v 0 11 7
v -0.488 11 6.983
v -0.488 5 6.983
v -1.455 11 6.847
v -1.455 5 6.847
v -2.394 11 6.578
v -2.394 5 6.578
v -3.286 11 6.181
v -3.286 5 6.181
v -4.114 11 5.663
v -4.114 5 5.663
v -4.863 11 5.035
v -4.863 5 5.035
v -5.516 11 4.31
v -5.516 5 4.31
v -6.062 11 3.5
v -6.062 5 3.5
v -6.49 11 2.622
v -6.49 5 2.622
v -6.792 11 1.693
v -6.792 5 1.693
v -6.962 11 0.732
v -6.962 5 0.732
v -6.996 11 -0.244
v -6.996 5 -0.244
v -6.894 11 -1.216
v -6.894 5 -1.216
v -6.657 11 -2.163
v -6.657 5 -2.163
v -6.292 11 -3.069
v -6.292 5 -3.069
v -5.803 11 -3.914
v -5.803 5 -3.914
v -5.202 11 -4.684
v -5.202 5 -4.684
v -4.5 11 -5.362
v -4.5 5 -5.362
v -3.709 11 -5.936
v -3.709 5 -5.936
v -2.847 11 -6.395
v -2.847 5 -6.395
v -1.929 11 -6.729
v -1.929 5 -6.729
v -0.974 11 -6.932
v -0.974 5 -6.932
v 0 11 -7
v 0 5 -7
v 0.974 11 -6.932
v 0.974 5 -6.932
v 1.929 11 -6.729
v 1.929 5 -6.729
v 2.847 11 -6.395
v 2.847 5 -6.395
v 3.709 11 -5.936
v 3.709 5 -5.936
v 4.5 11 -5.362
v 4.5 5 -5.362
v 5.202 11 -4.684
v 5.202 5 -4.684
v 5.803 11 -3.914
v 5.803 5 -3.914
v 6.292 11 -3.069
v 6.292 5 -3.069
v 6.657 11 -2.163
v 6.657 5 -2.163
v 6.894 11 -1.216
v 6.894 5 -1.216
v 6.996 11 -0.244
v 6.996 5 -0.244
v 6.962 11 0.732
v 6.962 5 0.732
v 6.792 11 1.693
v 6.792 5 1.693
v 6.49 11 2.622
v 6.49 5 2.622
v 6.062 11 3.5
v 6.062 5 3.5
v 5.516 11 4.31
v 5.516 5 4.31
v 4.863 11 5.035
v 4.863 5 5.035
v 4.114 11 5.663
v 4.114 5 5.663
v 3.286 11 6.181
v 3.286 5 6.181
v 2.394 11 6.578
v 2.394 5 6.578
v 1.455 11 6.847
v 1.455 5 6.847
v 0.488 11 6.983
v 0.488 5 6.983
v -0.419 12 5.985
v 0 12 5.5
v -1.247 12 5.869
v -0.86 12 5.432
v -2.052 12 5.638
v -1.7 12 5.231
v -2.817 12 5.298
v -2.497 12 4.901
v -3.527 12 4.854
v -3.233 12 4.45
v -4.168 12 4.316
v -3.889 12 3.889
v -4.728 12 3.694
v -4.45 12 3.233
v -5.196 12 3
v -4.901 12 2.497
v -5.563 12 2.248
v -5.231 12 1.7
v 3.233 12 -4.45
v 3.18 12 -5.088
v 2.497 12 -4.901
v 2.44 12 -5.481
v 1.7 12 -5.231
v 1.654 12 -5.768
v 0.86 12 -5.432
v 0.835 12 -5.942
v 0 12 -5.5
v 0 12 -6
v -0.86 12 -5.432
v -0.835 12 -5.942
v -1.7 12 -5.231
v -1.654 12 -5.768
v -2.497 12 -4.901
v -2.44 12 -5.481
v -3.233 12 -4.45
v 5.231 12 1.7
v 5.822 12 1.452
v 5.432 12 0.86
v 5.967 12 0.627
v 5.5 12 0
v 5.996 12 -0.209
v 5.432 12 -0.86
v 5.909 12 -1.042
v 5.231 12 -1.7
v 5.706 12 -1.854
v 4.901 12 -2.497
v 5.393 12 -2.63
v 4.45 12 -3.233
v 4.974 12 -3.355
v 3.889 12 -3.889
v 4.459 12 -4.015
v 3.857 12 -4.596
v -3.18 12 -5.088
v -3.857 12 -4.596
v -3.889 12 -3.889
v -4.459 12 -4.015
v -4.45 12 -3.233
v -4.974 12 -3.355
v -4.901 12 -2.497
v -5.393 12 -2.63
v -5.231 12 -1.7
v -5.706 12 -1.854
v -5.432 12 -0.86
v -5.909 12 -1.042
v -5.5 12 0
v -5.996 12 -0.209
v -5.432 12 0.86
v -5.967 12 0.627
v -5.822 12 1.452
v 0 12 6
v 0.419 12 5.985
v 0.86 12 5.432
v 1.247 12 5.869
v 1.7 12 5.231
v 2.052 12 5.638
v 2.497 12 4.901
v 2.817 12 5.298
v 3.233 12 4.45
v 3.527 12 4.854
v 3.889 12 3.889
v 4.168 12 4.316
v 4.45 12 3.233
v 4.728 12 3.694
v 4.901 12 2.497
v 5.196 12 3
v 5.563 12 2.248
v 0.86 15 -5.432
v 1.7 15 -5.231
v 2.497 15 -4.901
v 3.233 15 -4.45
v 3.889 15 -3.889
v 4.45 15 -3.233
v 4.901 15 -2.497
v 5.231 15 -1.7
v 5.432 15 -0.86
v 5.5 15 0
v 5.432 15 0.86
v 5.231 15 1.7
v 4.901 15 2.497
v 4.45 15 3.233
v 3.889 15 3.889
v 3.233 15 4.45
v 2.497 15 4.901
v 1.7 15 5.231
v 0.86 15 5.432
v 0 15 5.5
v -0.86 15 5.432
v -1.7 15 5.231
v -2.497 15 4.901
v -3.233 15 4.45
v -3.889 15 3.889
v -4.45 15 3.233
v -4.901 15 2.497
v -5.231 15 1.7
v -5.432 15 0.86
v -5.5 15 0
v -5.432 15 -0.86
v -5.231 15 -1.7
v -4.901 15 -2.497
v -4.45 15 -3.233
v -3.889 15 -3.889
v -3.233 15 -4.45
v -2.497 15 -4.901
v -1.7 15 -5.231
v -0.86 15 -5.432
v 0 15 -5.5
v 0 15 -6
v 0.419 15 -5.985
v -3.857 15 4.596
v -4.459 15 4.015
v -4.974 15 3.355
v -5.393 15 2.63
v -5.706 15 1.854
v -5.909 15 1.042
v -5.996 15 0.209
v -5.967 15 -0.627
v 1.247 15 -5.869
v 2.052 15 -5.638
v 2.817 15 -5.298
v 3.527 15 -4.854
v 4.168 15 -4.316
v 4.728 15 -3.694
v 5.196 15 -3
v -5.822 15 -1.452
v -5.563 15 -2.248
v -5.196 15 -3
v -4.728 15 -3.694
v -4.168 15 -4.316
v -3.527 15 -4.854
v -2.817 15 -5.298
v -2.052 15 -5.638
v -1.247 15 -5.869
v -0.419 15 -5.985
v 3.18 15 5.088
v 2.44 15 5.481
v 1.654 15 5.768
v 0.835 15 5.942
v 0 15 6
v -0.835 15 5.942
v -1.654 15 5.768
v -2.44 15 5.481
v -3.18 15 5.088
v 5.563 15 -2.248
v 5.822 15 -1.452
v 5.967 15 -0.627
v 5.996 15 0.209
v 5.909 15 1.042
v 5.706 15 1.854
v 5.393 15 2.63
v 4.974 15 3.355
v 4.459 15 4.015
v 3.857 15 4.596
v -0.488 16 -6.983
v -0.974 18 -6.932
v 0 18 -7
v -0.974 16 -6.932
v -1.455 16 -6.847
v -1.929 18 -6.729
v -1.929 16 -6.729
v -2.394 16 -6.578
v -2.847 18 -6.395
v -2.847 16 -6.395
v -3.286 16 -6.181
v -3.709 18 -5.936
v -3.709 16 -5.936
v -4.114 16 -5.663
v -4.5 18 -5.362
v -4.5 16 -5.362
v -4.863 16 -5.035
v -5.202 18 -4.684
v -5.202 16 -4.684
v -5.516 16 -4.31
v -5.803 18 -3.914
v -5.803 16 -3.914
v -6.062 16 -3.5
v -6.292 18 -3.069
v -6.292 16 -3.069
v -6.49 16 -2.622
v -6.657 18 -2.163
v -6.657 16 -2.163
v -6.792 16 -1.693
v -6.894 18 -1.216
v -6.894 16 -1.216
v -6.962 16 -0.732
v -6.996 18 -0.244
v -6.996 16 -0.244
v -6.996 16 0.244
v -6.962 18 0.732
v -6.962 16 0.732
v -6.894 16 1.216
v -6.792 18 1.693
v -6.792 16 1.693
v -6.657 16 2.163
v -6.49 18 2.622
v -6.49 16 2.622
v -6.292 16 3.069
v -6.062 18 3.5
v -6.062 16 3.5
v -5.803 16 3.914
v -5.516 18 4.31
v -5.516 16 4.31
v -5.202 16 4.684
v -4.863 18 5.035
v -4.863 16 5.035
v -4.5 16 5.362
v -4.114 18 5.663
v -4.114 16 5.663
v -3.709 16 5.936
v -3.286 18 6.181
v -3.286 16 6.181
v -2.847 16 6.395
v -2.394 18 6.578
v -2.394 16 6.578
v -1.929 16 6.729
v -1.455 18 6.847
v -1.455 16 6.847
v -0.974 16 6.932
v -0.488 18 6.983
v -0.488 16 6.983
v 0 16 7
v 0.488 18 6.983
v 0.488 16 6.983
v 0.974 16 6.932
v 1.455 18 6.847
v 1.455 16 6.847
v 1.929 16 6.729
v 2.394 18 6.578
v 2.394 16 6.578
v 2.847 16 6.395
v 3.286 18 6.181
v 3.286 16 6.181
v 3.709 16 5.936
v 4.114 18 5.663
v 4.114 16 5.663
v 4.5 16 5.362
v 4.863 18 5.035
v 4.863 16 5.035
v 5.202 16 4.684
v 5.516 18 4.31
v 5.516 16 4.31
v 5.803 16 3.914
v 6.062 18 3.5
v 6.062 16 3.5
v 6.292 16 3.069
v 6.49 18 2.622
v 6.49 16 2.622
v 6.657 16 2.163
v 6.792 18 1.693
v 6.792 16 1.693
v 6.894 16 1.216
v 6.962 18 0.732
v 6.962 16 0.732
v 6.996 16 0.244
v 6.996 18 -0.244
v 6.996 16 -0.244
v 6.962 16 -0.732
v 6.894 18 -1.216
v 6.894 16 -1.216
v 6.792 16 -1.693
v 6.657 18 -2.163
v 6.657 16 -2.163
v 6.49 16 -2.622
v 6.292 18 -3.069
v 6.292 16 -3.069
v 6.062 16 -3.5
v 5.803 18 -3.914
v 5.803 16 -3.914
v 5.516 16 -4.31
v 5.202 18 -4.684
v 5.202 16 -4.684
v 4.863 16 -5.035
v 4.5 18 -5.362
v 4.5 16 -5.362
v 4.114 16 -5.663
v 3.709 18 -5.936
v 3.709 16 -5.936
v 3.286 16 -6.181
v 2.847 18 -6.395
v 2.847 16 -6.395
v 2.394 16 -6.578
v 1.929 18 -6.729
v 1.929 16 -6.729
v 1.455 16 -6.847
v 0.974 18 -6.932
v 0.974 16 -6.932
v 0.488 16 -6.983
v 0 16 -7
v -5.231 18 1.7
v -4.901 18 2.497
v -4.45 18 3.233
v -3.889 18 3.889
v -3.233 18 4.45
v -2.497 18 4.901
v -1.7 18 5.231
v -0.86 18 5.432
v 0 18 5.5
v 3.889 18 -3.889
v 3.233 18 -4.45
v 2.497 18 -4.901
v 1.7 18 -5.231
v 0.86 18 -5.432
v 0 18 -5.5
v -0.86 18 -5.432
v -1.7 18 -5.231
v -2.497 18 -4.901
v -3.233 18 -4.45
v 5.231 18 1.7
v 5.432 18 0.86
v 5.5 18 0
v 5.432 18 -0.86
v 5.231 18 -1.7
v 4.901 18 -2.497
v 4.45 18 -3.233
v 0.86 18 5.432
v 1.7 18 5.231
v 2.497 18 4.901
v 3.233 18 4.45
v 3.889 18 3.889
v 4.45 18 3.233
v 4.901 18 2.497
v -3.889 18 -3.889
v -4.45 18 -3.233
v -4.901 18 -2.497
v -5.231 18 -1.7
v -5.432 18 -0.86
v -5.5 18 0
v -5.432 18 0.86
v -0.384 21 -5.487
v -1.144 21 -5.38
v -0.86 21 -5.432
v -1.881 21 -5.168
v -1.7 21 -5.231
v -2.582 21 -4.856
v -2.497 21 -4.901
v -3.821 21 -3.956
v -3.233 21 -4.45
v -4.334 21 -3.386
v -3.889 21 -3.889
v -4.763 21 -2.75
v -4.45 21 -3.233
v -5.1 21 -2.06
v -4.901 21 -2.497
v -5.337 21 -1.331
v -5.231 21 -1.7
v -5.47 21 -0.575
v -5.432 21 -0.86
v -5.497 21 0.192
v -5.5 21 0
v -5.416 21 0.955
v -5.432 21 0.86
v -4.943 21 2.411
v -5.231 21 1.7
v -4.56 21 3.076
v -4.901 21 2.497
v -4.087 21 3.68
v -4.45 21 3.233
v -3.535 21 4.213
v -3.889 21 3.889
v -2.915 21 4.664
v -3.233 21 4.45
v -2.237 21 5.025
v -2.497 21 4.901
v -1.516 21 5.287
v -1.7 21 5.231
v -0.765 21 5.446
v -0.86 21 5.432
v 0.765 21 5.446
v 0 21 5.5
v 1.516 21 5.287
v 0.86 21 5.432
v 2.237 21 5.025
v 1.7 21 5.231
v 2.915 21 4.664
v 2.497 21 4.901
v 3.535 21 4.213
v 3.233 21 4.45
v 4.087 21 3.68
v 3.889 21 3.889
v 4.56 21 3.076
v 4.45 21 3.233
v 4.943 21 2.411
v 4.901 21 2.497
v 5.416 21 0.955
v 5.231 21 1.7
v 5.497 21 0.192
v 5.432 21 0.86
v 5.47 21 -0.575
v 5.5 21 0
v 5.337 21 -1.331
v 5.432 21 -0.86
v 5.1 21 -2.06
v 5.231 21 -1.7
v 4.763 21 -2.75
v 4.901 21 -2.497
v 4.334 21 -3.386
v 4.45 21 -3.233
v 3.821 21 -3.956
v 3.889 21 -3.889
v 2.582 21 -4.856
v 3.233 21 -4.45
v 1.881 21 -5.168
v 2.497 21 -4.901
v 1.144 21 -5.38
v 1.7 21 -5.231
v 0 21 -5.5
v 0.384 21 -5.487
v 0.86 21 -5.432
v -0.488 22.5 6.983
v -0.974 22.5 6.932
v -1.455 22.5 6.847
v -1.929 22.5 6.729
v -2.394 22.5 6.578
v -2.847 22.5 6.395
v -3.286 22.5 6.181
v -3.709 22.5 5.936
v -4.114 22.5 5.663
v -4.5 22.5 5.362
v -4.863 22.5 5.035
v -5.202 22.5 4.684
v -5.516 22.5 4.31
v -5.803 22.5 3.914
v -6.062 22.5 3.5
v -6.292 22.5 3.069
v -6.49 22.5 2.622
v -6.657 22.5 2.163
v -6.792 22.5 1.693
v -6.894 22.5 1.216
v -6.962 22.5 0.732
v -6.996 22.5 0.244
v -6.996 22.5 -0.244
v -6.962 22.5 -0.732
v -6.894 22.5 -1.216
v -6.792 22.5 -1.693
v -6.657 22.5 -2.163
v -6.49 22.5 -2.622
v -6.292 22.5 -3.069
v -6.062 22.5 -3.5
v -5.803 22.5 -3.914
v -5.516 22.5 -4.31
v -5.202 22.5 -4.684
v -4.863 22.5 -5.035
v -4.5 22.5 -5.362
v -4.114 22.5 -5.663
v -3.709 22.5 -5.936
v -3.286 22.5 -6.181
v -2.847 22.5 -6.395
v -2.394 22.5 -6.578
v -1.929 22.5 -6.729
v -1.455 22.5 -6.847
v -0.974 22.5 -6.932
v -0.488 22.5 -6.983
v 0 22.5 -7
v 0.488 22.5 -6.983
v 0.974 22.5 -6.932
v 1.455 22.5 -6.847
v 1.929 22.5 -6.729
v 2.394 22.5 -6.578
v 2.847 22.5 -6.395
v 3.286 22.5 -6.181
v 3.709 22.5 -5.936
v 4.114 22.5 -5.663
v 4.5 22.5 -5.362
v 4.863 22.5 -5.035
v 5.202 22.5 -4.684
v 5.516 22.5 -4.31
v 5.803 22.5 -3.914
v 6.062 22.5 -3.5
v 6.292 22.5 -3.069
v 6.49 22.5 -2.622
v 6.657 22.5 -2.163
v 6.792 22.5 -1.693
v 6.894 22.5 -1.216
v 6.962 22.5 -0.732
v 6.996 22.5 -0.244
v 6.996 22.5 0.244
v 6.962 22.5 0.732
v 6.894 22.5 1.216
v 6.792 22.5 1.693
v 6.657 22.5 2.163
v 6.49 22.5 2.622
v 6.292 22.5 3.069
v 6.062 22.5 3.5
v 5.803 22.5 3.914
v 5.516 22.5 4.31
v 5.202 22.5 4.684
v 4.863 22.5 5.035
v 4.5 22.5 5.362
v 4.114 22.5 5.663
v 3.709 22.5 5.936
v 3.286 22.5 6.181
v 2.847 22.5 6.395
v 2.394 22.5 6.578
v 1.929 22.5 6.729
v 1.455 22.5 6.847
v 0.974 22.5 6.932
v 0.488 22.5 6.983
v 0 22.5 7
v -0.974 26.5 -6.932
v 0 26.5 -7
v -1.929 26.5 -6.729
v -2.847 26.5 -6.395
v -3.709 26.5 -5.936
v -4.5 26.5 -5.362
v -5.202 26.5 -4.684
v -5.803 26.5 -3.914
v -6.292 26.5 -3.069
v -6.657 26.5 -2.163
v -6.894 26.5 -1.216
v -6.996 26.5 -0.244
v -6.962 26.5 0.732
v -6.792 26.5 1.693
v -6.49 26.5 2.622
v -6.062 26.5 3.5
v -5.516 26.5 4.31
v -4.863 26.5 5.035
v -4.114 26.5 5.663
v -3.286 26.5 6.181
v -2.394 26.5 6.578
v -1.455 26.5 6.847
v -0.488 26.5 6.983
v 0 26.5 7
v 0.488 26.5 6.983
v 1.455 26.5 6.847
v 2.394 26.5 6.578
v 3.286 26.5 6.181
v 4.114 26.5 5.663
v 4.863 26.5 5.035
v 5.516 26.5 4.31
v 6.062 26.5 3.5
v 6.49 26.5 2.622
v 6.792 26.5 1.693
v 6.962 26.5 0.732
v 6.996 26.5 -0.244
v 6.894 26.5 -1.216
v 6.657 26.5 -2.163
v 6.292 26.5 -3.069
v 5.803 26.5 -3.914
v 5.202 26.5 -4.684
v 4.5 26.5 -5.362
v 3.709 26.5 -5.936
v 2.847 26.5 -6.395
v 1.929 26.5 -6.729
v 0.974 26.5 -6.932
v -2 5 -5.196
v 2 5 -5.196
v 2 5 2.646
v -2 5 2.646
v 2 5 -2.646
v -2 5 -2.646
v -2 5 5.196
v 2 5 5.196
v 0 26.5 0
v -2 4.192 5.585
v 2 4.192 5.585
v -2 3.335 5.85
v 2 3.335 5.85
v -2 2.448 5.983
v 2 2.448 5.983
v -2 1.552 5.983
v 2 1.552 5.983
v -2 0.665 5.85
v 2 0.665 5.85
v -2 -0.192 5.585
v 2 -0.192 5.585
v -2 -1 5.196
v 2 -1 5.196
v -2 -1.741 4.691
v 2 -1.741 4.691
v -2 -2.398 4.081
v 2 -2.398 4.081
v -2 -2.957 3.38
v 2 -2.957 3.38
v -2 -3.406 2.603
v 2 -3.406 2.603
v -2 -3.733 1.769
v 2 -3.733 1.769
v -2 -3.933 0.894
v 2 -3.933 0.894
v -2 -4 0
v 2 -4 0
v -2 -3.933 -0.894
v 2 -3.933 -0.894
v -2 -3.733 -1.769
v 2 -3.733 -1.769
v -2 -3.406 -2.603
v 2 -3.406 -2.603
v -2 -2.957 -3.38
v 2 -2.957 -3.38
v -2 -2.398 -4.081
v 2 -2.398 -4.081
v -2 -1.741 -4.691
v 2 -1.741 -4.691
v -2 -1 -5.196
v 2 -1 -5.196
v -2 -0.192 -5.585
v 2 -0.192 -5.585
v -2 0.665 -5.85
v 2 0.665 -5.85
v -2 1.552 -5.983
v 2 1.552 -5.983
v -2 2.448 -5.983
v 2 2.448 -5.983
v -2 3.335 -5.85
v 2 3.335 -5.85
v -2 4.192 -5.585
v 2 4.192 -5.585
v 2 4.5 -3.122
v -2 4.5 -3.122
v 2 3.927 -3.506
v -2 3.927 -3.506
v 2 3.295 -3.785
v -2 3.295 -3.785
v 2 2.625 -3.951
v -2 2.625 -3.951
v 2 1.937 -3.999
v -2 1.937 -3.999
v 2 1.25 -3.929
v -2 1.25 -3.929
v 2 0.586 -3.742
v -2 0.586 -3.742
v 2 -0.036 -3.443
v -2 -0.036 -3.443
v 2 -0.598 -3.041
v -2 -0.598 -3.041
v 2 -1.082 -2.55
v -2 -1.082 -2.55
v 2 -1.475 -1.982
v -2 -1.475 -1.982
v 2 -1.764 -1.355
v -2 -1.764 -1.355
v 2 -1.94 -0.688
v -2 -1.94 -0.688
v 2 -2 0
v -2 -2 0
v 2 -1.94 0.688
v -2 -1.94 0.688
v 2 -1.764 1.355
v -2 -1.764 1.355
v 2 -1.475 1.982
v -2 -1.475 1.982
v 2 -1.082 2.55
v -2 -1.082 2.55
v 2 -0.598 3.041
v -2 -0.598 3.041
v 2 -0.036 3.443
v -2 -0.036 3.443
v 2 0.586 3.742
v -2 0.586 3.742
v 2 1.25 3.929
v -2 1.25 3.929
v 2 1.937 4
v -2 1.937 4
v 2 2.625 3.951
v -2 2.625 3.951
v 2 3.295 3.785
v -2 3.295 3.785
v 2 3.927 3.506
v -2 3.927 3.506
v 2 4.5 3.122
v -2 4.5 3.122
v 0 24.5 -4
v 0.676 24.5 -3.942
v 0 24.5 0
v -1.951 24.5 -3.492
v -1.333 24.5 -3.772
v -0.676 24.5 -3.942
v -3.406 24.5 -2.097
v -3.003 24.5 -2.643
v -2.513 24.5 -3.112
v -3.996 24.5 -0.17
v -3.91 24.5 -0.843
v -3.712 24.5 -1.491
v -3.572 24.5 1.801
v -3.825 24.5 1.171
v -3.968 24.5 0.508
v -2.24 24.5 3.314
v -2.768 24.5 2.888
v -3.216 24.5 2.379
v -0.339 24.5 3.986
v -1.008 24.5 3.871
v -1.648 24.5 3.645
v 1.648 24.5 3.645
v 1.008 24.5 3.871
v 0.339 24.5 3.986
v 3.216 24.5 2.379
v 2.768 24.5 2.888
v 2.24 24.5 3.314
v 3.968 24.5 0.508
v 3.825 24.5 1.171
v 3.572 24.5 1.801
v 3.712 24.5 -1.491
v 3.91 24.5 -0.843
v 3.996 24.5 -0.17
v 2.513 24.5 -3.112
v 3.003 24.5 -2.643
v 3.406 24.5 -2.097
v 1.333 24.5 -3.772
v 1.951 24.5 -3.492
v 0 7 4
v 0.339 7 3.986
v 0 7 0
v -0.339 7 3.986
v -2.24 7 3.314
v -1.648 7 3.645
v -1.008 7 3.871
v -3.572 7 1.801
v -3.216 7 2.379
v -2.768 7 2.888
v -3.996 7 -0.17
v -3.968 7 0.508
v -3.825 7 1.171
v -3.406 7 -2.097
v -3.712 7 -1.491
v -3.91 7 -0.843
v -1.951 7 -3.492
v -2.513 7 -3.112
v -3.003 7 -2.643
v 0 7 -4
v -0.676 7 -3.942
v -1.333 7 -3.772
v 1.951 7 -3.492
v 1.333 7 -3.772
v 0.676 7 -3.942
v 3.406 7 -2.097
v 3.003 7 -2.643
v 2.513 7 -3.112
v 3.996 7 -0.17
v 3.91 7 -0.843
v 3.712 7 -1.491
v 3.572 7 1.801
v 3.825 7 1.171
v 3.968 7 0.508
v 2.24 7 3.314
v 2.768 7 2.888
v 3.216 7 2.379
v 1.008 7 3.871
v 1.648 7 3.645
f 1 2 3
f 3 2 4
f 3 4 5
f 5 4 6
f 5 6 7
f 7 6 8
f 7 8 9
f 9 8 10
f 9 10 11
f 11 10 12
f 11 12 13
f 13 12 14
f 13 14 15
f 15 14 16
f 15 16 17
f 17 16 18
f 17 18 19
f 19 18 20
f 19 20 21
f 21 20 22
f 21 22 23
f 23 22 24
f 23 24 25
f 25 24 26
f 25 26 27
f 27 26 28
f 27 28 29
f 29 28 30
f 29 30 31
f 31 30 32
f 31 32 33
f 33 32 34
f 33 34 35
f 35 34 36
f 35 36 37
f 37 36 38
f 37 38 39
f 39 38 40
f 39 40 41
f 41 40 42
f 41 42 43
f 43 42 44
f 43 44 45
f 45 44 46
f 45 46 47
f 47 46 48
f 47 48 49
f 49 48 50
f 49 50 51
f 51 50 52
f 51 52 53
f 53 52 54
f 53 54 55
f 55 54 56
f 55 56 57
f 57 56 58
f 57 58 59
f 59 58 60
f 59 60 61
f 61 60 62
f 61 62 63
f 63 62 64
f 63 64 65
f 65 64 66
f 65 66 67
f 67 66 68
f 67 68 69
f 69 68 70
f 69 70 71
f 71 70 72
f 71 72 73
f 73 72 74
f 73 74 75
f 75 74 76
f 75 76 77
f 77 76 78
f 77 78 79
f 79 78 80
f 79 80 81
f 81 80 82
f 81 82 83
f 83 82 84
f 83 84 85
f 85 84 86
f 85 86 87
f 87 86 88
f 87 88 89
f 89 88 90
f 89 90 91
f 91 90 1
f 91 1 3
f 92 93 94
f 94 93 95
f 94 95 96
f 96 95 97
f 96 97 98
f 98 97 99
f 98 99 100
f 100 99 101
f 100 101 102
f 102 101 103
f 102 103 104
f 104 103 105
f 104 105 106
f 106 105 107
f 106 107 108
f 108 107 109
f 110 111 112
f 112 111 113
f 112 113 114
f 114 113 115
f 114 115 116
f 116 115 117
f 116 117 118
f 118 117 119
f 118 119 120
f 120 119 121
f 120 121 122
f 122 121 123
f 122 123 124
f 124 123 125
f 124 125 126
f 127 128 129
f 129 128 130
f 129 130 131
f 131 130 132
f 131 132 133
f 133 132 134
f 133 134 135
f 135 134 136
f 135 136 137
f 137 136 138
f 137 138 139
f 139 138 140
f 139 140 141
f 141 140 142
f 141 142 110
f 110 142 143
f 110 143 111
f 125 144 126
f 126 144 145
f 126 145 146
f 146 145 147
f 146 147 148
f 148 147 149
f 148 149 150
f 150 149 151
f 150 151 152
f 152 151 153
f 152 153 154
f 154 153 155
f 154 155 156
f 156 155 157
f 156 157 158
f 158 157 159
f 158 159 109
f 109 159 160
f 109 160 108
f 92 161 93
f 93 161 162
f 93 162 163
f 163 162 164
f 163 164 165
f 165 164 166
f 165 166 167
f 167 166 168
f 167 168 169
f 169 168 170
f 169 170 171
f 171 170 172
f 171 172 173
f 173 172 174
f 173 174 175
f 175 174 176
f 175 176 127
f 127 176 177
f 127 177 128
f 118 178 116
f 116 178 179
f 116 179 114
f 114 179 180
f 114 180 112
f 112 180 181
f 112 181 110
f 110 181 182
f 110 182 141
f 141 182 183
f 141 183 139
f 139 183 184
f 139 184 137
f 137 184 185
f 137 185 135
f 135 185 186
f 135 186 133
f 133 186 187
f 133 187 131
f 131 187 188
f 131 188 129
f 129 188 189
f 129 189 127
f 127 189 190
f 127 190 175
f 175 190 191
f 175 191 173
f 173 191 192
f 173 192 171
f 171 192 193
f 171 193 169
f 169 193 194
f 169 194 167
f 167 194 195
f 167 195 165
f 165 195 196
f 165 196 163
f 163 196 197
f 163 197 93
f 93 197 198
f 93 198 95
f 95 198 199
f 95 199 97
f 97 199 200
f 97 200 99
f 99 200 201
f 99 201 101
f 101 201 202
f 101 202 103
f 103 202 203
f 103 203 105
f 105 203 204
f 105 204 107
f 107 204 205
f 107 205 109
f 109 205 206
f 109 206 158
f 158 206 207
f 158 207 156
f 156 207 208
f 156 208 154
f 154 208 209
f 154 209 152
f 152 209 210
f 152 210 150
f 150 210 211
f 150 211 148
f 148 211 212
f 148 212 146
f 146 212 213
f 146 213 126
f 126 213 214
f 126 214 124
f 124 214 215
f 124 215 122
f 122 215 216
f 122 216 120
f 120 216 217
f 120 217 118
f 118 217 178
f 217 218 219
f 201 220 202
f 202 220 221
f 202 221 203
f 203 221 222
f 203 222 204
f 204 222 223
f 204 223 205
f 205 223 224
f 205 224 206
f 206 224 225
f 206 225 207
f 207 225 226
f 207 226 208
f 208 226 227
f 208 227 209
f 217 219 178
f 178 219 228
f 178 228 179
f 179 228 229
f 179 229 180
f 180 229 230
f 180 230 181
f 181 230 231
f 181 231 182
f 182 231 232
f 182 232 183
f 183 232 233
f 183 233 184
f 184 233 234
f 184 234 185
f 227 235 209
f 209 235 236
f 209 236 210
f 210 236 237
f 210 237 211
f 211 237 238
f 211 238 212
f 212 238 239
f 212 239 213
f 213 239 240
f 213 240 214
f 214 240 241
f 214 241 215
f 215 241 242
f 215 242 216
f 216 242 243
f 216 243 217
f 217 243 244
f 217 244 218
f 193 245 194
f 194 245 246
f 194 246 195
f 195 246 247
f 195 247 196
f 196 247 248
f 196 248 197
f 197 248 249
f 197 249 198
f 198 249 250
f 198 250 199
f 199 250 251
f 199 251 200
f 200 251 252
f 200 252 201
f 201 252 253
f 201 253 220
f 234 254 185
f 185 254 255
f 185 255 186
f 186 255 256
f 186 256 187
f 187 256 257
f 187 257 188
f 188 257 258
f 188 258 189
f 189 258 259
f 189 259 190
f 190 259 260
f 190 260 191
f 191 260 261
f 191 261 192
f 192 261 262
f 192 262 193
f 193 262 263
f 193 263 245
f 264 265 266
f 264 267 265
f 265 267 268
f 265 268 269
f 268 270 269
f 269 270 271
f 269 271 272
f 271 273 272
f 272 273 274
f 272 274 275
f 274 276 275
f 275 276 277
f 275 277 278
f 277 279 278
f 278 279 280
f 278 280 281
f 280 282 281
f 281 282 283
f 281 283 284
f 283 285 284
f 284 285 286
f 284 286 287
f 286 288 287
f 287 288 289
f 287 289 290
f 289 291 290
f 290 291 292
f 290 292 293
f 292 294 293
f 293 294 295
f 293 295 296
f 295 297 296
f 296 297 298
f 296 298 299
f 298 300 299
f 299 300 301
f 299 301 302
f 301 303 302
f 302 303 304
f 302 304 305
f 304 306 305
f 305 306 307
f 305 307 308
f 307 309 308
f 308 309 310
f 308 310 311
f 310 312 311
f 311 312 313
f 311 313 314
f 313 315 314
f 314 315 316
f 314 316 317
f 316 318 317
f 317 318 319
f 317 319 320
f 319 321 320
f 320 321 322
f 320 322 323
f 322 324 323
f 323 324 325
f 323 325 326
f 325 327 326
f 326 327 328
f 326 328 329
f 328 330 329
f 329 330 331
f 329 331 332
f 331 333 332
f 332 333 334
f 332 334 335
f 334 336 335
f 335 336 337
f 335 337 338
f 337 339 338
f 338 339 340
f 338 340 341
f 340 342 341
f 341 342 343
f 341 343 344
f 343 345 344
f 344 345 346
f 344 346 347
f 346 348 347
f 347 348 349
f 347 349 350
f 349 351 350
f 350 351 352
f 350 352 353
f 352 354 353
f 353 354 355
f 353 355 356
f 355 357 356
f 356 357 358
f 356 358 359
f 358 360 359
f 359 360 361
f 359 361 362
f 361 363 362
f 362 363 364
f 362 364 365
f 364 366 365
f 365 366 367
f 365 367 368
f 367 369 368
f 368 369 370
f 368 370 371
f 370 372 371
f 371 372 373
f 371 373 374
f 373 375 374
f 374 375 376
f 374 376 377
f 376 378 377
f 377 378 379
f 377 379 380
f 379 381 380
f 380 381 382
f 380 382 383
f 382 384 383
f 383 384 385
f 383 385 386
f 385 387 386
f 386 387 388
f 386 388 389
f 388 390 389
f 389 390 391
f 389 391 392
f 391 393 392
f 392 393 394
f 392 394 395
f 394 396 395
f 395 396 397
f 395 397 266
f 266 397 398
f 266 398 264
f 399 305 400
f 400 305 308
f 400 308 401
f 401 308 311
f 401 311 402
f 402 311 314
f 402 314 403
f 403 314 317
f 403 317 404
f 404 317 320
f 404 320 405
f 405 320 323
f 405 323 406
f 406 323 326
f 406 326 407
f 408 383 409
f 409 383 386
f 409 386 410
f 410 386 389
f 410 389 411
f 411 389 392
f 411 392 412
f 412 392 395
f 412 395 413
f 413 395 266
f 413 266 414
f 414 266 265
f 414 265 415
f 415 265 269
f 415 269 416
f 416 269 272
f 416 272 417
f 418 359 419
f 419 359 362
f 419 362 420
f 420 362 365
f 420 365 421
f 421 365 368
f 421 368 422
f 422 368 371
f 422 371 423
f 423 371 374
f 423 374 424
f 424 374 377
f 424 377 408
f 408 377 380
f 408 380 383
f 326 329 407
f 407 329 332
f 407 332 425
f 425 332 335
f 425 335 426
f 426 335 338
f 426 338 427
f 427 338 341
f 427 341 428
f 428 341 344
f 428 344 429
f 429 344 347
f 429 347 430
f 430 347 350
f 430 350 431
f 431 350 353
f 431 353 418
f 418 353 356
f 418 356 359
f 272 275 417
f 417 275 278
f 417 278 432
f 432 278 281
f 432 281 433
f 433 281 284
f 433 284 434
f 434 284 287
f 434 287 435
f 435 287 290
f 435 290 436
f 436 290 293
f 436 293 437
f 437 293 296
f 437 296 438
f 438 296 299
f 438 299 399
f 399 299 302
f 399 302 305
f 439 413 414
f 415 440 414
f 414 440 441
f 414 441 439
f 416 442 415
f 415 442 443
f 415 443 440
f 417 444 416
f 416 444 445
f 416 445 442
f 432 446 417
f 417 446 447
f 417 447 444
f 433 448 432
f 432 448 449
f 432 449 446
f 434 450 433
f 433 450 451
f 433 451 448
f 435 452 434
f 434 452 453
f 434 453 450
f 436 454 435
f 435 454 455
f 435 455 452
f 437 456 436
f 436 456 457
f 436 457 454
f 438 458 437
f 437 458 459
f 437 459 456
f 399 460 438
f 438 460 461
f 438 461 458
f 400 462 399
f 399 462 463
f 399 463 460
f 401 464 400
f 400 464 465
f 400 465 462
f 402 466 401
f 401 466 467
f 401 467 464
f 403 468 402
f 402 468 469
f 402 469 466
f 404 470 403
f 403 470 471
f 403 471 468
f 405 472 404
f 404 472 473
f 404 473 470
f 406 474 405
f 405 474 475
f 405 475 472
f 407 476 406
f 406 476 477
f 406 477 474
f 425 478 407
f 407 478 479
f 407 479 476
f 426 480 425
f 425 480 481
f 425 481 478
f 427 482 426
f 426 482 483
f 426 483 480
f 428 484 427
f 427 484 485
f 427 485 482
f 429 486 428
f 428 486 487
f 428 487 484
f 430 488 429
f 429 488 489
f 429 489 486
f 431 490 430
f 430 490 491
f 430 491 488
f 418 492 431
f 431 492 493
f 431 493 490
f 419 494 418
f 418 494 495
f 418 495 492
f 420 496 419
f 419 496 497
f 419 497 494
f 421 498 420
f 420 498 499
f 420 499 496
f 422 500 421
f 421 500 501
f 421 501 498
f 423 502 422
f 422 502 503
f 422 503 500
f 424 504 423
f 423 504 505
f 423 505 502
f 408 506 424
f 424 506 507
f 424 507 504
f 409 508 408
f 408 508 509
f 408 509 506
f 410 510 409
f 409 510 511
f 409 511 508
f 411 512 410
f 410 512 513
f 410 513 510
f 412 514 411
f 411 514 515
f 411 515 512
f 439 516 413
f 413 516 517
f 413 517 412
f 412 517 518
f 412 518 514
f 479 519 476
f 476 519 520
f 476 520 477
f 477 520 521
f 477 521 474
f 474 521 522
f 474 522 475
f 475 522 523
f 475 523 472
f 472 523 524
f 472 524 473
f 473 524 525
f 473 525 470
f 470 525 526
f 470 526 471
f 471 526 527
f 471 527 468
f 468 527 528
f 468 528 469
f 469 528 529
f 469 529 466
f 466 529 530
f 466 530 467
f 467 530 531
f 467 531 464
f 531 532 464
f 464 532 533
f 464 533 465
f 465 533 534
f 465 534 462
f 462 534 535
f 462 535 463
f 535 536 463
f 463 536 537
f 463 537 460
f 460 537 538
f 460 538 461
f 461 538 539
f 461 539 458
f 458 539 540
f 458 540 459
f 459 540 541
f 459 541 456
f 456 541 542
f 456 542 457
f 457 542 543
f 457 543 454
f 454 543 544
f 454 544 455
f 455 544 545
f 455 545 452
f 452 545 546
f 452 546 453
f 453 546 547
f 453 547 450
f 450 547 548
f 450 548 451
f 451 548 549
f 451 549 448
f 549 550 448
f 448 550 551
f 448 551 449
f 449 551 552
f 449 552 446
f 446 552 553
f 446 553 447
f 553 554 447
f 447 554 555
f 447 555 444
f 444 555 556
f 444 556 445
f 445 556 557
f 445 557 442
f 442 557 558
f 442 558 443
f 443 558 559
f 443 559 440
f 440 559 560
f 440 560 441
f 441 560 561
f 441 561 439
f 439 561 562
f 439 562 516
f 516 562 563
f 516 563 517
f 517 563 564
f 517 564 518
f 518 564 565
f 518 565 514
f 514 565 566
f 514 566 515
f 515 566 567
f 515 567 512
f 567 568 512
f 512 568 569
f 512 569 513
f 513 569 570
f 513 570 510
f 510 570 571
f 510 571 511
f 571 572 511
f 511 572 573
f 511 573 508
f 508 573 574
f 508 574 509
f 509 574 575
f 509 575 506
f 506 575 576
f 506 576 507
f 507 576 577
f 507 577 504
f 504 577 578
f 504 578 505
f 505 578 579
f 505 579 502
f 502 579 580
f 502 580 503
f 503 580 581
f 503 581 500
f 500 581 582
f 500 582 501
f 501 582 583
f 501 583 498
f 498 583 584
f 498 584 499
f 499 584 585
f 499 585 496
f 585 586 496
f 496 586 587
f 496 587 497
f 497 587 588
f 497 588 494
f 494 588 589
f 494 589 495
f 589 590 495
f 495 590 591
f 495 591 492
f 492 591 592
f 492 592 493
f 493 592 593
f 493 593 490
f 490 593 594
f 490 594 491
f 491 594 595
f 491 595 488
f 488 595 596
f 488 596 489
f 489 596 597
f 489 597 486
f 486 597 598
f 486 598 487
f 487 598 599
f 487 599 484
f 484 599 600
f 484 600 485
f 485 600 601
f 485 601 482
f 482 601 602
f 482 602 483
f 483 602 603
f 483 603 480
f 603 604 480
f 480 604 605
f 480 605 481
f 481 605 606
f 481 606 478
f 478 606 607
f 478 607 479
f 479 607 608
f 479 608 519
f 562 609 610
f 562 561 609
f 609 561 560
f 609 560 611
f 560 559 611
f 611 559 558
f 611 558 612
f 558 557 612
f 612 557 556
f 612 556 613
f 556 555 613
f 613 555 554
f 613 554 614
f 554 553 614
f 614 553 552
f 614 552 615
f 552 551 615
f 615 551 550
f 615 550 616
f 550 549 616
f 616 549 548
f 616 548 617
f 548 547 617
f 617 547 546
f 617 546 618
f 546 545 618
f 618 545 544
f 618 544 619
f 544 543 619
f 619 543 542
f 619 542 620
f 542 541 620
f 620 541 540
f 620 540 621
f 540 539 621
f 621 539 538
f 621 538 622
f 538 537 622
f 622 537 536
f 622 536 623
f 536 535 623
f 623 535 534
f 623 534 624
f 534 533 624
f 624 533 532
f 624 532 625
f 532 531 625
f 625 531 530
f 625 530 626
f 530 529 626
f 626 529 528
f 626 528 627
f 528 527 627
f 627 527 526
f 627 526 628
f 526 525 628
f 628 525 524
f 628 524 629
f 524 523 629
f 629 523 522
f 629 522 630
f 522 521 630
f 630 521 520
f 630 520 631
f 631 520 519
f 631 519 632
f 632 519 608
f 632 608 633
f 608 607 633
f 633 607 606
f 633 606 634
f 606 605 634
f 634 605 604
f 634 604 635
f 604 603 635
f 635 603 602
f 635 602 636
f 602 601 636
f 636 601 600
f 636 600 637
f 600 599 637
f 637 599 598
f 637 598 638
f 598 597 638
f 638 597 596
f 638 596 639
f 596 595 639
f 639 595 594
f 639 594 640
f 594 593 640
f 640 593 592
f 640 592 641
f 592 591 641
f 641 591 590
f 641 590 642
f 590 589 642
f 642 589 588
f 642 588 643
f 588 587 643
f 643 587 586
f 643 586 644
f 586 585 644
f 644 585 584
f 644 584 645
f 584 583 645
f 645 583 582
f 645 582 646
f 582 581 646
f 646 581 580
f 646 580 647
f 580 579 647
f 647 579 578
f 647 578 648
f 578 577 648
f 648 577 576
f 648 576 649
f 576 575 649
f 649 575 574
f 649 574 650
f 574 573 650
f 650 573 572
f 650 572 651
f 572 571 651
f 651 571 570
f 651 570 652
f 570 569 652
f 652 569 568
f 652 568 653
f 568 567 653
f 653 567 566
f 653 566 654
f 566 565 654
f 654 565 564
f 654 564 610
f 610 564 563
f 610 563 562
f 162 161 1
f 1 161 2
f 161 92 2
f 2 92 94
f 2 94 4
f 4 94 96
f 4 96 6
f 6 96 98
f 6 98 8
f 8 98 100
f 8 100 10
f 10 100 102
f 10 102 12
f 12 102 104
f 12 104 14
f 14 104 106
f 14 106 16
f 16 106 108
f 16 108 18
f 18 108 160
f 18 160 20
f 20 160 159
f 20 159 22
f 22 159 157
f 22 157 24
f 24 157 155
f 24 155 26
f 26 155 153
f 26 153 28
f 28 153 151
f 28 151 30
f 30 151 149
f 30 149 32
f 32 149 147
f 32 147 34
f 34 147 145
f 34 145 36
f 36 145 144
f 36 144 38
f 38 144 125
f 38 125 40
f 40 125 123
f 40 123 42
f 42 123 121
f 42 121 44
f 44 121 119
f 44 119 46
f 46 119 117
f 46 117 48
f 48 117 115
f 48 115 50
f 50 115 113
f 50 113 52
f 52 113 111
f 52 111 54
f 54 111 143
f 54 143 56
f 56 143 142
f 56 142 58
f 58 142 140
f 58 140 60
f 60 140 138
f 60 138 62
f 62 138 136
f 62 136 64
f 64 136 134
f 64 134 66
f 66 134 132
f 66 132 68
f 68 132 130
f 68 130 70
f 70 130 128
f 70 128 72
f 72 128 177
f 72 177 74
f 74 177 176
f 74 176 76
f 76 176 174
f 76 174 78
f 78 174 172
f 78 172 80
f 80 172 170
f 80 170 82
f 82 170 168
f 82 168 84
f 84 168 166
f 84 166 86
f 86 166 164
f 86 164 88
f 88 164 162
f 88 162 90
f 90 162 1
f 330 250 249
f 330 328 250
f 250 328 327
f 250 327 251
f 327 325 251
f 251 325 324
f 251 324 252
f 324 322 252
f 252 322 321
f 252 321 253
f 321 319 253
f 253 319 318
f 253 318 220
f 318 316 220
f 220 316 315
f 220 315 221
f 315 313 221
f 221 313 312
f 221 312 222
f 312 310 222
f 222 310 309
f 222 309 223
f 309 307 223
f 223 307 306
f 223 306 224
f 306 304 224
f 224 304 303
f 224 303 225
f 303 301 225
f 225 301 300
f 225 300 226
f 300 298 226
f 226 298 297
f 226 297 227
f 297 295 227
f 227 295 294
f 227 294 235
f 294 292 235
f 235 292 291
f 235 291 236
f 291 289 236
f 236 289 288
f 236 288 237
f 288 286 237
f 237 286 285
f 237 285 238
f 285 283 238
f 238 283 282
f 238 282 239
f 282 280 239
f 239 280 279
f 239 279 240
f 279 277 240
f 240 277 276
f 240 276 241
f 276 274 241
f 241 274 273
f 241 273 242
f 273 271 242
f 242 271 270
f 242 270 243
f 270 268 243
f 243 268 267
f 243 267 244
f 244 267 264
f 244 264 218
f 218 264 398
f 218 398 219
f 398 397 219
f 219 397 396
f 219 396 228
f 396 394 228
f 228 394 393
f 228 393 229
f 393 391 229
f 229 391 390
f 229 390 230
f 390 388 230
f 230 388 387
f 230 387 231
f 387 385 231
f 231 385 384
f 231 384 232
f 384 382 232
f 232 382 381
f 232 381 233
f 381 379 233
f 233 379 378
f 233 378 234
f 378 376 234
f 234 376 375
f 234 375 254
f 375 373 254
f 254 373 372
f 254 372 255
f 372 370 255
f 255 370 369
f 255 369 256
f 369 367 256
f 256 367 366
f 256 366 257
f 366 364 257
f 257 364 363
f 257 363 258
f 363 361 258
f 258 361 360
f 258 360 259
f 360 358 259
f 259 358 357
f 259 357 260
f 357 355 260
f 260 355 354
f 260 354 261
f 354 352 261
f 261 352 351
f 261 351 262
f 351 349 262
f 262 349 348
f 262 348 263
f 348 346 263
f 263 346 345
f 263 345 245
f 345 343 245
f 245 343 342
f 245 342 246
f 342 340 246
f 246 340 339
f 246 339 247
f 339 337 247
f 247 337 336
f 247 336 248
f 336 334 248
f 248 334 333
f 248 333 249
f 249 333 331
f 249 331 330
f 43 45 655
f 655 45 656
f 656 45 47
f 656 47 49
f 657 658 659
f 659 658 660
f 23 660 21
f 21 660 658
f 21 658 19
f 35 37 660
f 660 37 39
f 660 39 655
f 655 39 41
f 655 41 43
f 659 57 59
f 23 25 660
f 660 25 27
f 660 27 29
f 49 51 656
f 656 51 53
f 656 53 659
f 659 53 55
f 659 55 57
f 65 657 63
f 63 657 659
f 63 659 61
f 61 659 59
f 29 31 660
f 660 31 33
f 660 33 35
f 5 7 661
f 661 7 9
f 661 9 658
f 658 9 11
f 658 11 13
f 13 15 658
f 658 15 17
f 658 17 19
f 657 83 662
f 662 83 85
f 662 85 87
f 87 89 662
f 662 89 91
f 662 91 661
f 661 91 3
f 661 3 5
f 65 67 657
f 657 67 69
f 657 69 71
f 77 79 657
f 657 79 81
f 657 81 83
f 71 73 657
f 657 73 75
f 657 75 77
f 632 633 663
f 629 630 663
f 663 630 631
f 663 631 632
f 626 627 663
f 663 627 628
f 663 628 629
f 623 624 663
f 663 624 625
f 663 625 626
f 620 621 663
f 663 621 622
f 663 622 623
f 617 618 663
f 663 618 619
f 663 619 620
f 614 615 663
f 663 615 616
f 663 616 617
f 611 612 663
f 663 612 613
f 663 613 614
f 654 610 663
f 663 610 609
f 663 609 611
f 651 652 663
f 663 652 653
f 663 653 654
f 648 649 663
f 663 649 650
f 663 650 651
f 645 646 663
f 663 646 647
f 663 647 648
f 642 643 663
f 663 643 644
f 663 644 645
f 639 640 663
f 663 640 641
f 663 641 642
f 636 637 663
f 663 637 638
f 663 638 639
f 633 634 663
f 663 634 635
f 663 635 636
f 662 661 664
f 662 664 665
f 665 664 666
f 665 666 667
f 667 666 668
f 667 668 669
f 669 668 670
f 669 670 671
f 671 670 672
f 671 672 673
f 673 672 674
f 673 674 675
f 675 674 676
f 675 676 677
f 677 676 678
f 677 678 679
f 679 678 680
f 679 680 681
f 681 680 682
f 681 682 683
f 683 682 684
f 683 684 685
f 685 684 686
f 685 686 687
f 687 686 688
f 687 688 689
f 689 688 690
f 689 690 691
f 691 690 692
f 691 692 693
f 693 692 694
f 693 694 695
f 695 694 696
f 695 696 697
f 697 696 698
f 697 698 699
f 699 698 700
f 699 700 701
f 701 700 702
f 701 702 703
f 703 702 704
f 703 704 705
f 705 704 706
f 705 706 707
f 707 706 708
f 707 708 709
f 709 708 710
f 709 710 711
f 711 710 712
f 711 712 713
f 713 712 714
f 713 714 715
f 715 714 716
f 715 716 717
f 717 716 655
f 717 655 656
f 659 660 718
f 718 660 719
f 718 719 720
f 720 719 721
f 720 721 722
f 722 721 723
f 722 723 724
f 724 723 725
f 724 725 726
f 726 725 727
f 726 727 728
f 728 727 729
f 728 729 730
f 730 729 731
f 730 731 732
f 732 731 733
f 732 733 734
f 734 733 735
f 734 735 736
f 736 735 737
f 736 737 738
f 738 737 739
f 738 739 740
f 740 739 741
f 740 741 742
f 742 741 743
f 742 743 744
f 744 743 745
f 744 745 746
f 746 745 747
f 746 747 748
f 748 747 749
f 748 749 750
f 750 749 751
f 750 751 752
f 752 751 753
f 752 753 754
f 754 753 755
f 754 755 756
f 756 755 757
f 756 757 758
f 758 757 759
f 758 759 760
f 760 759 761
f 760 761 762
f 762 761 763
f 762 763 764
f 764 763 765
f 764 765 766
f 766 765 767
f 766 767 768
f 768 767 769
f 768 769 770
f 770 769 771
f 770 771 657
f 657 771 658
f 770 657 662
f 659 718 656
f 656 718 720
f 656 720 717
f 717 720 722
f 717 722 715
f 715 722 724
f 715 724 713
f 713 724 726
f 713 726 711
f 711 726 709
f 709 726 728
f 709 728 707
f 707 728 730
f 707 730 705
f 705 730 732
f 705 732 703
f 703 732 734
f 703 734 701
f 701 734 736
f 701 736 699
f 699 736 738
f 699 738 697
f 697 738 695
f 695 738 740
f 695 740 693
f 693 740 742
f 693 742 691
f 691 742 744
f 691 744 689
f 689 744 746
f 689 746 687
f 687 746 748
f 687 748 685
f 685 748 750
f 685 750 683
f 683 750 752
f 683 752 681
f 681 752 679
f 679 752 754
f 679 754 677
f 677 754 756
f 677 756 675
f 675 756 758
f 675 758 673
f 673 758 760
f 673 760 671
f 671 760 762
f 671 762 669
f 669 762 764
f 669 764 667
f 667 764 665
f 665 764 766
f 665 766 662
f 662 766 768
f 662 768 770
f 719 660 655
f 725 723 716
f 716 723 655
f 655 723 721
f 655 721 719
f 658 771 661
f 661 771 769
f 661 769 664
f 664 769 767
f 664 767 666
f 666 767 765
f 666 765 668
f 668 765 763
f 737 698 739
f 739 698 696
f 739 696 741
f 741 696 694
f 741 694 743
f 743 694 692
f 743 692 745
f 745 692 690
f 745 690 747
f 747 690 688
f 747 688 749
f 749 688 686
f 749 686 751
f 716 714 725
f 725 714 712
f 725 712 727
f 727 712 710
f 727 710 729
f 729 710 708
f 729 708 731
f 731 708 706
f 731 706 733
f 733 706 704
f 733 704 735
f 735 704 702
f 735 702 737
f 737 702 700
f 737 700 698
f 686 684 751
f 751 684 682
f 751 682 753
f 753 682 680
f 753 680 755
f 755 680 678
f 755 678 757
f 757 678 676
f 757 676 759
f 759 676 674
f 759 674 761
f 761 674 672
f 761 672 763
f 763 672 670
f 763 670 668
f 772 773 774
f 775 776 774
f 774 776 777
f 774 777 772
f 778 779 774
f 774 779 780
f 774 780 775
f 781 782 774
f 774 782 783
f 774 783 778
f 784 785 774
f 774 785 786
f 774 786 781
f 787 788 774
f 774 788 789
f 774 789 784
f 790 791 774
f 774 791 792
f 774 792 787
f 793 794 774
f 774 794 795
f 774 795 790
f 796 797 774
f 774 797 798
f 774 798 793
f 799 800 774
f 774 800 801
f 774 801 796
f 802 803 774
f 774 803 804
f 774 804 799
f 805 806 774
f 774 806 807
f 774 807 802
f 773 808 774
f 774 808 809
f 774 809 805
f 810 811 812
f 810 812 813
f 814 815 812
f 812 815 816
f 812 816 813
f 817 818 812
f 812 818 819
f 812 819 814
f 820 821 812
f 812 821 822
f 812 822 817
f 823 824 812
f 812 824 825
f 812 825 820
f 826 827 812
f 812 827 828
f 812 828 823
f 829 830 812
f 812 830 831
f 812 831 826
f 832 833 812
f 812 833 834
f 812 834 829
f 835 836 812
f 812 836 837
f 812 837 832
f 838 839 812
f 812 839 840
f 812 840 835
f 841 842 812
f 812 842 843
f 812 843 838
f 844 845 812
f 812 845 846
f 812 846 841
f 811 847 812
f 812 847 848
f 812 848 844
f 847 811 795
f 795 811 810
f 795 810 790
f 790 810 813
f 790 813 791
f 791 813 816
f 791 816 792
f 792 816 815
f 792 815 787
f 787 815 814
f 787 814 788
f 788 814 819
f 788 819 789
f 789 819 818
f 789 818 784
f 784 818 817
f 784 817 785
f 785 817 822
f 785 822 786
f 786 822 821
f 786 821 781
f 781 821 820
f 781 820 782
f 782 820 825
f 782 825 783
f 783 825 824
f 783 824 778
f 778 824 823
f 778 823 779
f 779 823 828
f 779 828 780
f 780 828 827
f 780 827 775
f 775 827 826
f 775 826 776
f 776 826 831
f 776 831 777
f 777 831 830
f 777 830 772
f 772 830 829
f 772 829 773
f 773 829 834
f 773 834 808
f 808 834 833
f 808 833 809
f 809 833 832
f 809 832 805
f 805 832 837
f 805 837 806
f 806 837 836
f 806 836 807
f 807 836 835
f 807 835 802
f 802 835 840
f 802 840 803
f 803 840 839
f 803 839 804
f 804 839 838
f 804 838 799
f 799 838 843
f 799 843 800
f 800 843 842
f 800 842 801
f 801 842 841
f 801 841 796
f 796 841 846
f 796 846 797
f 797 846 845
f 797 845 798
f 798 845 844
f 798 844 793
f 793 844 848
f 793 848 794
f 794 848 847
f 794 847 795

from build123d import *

# Parameters (mm, degrees)
CROQUIS1_W              = 36.7
CROQUIS1_H              = 40
CROQUIS1_R              = 4
SALIENTE_EXTRUIR1_DEPTH = 7
CHAFL_N1_SIZE           = 1
CROQUIS3_R              = 6.55
CORTAR_EXTRUIR1_DEPTH   = 2
CROQUIS5_W              = 36.7
CROQUIS5_H              = 7
CORTAR_EXTRUIR2_DEPTH   = 51.36836805
CROQUIS6_R              = 7
SALIENTE_EXTRUIR2_DEPTH = 2
SALIENTE_EXTRUIR3_START = 2
CROQUIS7_R              = 7
SALIENTE_EXTRUIR3_DEPTH = 2
SALIENTE_EXTRUIR4_DEPTH = 2


with BuildPart() as part:
    # Croquis1 → Saliente-Extruir1 (new body)
    with BuildSketch(Plane(origin=(0, 0, 0), x_dir=(1, 0, 0), z_dir=(0, 1, 0))):
        Rectangle(CROQUIS1_W, CROQUIS1_H)
        with Locations(Location((0, 0, 0), (0, 0, 270))):
            Circle(CROQUIS1_R, mode=Mode.SUBTRACT)
    extrude(amount=SALIENTE_EXTRUIR1_DEPTH)

    # Croquis2 → Revolución1 (revolve)
    with BuildSketch(Plane(origin=(0, 0, 0), x_dir=(0, 0, -1), z_dir=(1, 0, 0))):
        Polygon((7, 7), (7, 12), (5.5, 12), (5.5, 15), (7, 15), (7, 18), (5.5, 18), (5.5, 21), (7, 22.5), (7, 24.5), (4, 24.5), (4, 7), align=None)
    revolve(axis=Axis((0, 7, 0), (0, 1, 0)))

    # Chaflán1
    chafl_n1_edges = [part.edges().sort_by_distance(p)[0] for p in [
        (0, 12, 7),
        (0, 15, 7),
    ]]
    chamfer(chafl_n1_edges, length=CHAFL_N1_SIZE)

    # Croquis3 → Cortar-Extruir1 (cut)
    with BuildSketch(Plane.XZ):
        with Locations(Location((0, 0, 0), (0, 0, 270))):
            Circle(CROQUIS3_R)
    extrude(amount=-CORTAR_EXTRUIR1_DEPTH, mode=Mode.SUBTRACT)

    # Croquis5 → Cortar-Extruir2 (cut, through all)
    with BuildSketch(Plane.XY.offset(20)):
        with Locations((0, 3.5)):
            Rectangle(CROQUIS5_W, CROQUIS5_H)
    extrude(amount=-CORTAR_EXTRUIR2_DEPTH, mode=Mode.SUBTRACT)

    # Croquis6 → Saliente-Extruir2 (add)
    with BuildSketch(Plane.XZ.offset(-7)):
        with Locations(Location((0, 0, 0), (0, 0, 270))):
            Circle(CROQUIS6_R)
    extrude(amount=SALIENTE_EXTRUIR2_DEPTH)

    # Croquis7 → Saliente-Extruir3 (add)
    with BuildSketch(Plane(origin=(0, 24.5, 0), x_dir=(1, 0, 0), z_dir=(0, 1, 0)).offset(SALIENTE_EXTRUIR3_START)):
        with Locations(Location((0, 0, 0), (0, 0, 90))):
            Circle(CROQUIS7_R)
    extrude(amount=-SALIENTE_EXTRUIR3_DEPTH)

    # Croquis8 → Saliente-Extruir4 (add, symmetric)
    with BuildSketch(Plane(origin=(0, 0, 0), x_dir=(0, 0, -1), z_dir=(1, 0, 0))):
        with BuildLine():
            Line((-2.645751311, 5), (-5.196152423, 5))
            ThreePointArc((-5.196152423, 5), (0, -4), (5.196152423, 5))
            Line((5.196152423, 5), (2.645751311, 5))
            ThreePointArc((2.645751311, 5), (0, -2), (-2.645751311, 5))
        make_face()
    extrude(amount=SALIENTE_EXTRUIR4_DEPTH, both=True)


solid = part.part
